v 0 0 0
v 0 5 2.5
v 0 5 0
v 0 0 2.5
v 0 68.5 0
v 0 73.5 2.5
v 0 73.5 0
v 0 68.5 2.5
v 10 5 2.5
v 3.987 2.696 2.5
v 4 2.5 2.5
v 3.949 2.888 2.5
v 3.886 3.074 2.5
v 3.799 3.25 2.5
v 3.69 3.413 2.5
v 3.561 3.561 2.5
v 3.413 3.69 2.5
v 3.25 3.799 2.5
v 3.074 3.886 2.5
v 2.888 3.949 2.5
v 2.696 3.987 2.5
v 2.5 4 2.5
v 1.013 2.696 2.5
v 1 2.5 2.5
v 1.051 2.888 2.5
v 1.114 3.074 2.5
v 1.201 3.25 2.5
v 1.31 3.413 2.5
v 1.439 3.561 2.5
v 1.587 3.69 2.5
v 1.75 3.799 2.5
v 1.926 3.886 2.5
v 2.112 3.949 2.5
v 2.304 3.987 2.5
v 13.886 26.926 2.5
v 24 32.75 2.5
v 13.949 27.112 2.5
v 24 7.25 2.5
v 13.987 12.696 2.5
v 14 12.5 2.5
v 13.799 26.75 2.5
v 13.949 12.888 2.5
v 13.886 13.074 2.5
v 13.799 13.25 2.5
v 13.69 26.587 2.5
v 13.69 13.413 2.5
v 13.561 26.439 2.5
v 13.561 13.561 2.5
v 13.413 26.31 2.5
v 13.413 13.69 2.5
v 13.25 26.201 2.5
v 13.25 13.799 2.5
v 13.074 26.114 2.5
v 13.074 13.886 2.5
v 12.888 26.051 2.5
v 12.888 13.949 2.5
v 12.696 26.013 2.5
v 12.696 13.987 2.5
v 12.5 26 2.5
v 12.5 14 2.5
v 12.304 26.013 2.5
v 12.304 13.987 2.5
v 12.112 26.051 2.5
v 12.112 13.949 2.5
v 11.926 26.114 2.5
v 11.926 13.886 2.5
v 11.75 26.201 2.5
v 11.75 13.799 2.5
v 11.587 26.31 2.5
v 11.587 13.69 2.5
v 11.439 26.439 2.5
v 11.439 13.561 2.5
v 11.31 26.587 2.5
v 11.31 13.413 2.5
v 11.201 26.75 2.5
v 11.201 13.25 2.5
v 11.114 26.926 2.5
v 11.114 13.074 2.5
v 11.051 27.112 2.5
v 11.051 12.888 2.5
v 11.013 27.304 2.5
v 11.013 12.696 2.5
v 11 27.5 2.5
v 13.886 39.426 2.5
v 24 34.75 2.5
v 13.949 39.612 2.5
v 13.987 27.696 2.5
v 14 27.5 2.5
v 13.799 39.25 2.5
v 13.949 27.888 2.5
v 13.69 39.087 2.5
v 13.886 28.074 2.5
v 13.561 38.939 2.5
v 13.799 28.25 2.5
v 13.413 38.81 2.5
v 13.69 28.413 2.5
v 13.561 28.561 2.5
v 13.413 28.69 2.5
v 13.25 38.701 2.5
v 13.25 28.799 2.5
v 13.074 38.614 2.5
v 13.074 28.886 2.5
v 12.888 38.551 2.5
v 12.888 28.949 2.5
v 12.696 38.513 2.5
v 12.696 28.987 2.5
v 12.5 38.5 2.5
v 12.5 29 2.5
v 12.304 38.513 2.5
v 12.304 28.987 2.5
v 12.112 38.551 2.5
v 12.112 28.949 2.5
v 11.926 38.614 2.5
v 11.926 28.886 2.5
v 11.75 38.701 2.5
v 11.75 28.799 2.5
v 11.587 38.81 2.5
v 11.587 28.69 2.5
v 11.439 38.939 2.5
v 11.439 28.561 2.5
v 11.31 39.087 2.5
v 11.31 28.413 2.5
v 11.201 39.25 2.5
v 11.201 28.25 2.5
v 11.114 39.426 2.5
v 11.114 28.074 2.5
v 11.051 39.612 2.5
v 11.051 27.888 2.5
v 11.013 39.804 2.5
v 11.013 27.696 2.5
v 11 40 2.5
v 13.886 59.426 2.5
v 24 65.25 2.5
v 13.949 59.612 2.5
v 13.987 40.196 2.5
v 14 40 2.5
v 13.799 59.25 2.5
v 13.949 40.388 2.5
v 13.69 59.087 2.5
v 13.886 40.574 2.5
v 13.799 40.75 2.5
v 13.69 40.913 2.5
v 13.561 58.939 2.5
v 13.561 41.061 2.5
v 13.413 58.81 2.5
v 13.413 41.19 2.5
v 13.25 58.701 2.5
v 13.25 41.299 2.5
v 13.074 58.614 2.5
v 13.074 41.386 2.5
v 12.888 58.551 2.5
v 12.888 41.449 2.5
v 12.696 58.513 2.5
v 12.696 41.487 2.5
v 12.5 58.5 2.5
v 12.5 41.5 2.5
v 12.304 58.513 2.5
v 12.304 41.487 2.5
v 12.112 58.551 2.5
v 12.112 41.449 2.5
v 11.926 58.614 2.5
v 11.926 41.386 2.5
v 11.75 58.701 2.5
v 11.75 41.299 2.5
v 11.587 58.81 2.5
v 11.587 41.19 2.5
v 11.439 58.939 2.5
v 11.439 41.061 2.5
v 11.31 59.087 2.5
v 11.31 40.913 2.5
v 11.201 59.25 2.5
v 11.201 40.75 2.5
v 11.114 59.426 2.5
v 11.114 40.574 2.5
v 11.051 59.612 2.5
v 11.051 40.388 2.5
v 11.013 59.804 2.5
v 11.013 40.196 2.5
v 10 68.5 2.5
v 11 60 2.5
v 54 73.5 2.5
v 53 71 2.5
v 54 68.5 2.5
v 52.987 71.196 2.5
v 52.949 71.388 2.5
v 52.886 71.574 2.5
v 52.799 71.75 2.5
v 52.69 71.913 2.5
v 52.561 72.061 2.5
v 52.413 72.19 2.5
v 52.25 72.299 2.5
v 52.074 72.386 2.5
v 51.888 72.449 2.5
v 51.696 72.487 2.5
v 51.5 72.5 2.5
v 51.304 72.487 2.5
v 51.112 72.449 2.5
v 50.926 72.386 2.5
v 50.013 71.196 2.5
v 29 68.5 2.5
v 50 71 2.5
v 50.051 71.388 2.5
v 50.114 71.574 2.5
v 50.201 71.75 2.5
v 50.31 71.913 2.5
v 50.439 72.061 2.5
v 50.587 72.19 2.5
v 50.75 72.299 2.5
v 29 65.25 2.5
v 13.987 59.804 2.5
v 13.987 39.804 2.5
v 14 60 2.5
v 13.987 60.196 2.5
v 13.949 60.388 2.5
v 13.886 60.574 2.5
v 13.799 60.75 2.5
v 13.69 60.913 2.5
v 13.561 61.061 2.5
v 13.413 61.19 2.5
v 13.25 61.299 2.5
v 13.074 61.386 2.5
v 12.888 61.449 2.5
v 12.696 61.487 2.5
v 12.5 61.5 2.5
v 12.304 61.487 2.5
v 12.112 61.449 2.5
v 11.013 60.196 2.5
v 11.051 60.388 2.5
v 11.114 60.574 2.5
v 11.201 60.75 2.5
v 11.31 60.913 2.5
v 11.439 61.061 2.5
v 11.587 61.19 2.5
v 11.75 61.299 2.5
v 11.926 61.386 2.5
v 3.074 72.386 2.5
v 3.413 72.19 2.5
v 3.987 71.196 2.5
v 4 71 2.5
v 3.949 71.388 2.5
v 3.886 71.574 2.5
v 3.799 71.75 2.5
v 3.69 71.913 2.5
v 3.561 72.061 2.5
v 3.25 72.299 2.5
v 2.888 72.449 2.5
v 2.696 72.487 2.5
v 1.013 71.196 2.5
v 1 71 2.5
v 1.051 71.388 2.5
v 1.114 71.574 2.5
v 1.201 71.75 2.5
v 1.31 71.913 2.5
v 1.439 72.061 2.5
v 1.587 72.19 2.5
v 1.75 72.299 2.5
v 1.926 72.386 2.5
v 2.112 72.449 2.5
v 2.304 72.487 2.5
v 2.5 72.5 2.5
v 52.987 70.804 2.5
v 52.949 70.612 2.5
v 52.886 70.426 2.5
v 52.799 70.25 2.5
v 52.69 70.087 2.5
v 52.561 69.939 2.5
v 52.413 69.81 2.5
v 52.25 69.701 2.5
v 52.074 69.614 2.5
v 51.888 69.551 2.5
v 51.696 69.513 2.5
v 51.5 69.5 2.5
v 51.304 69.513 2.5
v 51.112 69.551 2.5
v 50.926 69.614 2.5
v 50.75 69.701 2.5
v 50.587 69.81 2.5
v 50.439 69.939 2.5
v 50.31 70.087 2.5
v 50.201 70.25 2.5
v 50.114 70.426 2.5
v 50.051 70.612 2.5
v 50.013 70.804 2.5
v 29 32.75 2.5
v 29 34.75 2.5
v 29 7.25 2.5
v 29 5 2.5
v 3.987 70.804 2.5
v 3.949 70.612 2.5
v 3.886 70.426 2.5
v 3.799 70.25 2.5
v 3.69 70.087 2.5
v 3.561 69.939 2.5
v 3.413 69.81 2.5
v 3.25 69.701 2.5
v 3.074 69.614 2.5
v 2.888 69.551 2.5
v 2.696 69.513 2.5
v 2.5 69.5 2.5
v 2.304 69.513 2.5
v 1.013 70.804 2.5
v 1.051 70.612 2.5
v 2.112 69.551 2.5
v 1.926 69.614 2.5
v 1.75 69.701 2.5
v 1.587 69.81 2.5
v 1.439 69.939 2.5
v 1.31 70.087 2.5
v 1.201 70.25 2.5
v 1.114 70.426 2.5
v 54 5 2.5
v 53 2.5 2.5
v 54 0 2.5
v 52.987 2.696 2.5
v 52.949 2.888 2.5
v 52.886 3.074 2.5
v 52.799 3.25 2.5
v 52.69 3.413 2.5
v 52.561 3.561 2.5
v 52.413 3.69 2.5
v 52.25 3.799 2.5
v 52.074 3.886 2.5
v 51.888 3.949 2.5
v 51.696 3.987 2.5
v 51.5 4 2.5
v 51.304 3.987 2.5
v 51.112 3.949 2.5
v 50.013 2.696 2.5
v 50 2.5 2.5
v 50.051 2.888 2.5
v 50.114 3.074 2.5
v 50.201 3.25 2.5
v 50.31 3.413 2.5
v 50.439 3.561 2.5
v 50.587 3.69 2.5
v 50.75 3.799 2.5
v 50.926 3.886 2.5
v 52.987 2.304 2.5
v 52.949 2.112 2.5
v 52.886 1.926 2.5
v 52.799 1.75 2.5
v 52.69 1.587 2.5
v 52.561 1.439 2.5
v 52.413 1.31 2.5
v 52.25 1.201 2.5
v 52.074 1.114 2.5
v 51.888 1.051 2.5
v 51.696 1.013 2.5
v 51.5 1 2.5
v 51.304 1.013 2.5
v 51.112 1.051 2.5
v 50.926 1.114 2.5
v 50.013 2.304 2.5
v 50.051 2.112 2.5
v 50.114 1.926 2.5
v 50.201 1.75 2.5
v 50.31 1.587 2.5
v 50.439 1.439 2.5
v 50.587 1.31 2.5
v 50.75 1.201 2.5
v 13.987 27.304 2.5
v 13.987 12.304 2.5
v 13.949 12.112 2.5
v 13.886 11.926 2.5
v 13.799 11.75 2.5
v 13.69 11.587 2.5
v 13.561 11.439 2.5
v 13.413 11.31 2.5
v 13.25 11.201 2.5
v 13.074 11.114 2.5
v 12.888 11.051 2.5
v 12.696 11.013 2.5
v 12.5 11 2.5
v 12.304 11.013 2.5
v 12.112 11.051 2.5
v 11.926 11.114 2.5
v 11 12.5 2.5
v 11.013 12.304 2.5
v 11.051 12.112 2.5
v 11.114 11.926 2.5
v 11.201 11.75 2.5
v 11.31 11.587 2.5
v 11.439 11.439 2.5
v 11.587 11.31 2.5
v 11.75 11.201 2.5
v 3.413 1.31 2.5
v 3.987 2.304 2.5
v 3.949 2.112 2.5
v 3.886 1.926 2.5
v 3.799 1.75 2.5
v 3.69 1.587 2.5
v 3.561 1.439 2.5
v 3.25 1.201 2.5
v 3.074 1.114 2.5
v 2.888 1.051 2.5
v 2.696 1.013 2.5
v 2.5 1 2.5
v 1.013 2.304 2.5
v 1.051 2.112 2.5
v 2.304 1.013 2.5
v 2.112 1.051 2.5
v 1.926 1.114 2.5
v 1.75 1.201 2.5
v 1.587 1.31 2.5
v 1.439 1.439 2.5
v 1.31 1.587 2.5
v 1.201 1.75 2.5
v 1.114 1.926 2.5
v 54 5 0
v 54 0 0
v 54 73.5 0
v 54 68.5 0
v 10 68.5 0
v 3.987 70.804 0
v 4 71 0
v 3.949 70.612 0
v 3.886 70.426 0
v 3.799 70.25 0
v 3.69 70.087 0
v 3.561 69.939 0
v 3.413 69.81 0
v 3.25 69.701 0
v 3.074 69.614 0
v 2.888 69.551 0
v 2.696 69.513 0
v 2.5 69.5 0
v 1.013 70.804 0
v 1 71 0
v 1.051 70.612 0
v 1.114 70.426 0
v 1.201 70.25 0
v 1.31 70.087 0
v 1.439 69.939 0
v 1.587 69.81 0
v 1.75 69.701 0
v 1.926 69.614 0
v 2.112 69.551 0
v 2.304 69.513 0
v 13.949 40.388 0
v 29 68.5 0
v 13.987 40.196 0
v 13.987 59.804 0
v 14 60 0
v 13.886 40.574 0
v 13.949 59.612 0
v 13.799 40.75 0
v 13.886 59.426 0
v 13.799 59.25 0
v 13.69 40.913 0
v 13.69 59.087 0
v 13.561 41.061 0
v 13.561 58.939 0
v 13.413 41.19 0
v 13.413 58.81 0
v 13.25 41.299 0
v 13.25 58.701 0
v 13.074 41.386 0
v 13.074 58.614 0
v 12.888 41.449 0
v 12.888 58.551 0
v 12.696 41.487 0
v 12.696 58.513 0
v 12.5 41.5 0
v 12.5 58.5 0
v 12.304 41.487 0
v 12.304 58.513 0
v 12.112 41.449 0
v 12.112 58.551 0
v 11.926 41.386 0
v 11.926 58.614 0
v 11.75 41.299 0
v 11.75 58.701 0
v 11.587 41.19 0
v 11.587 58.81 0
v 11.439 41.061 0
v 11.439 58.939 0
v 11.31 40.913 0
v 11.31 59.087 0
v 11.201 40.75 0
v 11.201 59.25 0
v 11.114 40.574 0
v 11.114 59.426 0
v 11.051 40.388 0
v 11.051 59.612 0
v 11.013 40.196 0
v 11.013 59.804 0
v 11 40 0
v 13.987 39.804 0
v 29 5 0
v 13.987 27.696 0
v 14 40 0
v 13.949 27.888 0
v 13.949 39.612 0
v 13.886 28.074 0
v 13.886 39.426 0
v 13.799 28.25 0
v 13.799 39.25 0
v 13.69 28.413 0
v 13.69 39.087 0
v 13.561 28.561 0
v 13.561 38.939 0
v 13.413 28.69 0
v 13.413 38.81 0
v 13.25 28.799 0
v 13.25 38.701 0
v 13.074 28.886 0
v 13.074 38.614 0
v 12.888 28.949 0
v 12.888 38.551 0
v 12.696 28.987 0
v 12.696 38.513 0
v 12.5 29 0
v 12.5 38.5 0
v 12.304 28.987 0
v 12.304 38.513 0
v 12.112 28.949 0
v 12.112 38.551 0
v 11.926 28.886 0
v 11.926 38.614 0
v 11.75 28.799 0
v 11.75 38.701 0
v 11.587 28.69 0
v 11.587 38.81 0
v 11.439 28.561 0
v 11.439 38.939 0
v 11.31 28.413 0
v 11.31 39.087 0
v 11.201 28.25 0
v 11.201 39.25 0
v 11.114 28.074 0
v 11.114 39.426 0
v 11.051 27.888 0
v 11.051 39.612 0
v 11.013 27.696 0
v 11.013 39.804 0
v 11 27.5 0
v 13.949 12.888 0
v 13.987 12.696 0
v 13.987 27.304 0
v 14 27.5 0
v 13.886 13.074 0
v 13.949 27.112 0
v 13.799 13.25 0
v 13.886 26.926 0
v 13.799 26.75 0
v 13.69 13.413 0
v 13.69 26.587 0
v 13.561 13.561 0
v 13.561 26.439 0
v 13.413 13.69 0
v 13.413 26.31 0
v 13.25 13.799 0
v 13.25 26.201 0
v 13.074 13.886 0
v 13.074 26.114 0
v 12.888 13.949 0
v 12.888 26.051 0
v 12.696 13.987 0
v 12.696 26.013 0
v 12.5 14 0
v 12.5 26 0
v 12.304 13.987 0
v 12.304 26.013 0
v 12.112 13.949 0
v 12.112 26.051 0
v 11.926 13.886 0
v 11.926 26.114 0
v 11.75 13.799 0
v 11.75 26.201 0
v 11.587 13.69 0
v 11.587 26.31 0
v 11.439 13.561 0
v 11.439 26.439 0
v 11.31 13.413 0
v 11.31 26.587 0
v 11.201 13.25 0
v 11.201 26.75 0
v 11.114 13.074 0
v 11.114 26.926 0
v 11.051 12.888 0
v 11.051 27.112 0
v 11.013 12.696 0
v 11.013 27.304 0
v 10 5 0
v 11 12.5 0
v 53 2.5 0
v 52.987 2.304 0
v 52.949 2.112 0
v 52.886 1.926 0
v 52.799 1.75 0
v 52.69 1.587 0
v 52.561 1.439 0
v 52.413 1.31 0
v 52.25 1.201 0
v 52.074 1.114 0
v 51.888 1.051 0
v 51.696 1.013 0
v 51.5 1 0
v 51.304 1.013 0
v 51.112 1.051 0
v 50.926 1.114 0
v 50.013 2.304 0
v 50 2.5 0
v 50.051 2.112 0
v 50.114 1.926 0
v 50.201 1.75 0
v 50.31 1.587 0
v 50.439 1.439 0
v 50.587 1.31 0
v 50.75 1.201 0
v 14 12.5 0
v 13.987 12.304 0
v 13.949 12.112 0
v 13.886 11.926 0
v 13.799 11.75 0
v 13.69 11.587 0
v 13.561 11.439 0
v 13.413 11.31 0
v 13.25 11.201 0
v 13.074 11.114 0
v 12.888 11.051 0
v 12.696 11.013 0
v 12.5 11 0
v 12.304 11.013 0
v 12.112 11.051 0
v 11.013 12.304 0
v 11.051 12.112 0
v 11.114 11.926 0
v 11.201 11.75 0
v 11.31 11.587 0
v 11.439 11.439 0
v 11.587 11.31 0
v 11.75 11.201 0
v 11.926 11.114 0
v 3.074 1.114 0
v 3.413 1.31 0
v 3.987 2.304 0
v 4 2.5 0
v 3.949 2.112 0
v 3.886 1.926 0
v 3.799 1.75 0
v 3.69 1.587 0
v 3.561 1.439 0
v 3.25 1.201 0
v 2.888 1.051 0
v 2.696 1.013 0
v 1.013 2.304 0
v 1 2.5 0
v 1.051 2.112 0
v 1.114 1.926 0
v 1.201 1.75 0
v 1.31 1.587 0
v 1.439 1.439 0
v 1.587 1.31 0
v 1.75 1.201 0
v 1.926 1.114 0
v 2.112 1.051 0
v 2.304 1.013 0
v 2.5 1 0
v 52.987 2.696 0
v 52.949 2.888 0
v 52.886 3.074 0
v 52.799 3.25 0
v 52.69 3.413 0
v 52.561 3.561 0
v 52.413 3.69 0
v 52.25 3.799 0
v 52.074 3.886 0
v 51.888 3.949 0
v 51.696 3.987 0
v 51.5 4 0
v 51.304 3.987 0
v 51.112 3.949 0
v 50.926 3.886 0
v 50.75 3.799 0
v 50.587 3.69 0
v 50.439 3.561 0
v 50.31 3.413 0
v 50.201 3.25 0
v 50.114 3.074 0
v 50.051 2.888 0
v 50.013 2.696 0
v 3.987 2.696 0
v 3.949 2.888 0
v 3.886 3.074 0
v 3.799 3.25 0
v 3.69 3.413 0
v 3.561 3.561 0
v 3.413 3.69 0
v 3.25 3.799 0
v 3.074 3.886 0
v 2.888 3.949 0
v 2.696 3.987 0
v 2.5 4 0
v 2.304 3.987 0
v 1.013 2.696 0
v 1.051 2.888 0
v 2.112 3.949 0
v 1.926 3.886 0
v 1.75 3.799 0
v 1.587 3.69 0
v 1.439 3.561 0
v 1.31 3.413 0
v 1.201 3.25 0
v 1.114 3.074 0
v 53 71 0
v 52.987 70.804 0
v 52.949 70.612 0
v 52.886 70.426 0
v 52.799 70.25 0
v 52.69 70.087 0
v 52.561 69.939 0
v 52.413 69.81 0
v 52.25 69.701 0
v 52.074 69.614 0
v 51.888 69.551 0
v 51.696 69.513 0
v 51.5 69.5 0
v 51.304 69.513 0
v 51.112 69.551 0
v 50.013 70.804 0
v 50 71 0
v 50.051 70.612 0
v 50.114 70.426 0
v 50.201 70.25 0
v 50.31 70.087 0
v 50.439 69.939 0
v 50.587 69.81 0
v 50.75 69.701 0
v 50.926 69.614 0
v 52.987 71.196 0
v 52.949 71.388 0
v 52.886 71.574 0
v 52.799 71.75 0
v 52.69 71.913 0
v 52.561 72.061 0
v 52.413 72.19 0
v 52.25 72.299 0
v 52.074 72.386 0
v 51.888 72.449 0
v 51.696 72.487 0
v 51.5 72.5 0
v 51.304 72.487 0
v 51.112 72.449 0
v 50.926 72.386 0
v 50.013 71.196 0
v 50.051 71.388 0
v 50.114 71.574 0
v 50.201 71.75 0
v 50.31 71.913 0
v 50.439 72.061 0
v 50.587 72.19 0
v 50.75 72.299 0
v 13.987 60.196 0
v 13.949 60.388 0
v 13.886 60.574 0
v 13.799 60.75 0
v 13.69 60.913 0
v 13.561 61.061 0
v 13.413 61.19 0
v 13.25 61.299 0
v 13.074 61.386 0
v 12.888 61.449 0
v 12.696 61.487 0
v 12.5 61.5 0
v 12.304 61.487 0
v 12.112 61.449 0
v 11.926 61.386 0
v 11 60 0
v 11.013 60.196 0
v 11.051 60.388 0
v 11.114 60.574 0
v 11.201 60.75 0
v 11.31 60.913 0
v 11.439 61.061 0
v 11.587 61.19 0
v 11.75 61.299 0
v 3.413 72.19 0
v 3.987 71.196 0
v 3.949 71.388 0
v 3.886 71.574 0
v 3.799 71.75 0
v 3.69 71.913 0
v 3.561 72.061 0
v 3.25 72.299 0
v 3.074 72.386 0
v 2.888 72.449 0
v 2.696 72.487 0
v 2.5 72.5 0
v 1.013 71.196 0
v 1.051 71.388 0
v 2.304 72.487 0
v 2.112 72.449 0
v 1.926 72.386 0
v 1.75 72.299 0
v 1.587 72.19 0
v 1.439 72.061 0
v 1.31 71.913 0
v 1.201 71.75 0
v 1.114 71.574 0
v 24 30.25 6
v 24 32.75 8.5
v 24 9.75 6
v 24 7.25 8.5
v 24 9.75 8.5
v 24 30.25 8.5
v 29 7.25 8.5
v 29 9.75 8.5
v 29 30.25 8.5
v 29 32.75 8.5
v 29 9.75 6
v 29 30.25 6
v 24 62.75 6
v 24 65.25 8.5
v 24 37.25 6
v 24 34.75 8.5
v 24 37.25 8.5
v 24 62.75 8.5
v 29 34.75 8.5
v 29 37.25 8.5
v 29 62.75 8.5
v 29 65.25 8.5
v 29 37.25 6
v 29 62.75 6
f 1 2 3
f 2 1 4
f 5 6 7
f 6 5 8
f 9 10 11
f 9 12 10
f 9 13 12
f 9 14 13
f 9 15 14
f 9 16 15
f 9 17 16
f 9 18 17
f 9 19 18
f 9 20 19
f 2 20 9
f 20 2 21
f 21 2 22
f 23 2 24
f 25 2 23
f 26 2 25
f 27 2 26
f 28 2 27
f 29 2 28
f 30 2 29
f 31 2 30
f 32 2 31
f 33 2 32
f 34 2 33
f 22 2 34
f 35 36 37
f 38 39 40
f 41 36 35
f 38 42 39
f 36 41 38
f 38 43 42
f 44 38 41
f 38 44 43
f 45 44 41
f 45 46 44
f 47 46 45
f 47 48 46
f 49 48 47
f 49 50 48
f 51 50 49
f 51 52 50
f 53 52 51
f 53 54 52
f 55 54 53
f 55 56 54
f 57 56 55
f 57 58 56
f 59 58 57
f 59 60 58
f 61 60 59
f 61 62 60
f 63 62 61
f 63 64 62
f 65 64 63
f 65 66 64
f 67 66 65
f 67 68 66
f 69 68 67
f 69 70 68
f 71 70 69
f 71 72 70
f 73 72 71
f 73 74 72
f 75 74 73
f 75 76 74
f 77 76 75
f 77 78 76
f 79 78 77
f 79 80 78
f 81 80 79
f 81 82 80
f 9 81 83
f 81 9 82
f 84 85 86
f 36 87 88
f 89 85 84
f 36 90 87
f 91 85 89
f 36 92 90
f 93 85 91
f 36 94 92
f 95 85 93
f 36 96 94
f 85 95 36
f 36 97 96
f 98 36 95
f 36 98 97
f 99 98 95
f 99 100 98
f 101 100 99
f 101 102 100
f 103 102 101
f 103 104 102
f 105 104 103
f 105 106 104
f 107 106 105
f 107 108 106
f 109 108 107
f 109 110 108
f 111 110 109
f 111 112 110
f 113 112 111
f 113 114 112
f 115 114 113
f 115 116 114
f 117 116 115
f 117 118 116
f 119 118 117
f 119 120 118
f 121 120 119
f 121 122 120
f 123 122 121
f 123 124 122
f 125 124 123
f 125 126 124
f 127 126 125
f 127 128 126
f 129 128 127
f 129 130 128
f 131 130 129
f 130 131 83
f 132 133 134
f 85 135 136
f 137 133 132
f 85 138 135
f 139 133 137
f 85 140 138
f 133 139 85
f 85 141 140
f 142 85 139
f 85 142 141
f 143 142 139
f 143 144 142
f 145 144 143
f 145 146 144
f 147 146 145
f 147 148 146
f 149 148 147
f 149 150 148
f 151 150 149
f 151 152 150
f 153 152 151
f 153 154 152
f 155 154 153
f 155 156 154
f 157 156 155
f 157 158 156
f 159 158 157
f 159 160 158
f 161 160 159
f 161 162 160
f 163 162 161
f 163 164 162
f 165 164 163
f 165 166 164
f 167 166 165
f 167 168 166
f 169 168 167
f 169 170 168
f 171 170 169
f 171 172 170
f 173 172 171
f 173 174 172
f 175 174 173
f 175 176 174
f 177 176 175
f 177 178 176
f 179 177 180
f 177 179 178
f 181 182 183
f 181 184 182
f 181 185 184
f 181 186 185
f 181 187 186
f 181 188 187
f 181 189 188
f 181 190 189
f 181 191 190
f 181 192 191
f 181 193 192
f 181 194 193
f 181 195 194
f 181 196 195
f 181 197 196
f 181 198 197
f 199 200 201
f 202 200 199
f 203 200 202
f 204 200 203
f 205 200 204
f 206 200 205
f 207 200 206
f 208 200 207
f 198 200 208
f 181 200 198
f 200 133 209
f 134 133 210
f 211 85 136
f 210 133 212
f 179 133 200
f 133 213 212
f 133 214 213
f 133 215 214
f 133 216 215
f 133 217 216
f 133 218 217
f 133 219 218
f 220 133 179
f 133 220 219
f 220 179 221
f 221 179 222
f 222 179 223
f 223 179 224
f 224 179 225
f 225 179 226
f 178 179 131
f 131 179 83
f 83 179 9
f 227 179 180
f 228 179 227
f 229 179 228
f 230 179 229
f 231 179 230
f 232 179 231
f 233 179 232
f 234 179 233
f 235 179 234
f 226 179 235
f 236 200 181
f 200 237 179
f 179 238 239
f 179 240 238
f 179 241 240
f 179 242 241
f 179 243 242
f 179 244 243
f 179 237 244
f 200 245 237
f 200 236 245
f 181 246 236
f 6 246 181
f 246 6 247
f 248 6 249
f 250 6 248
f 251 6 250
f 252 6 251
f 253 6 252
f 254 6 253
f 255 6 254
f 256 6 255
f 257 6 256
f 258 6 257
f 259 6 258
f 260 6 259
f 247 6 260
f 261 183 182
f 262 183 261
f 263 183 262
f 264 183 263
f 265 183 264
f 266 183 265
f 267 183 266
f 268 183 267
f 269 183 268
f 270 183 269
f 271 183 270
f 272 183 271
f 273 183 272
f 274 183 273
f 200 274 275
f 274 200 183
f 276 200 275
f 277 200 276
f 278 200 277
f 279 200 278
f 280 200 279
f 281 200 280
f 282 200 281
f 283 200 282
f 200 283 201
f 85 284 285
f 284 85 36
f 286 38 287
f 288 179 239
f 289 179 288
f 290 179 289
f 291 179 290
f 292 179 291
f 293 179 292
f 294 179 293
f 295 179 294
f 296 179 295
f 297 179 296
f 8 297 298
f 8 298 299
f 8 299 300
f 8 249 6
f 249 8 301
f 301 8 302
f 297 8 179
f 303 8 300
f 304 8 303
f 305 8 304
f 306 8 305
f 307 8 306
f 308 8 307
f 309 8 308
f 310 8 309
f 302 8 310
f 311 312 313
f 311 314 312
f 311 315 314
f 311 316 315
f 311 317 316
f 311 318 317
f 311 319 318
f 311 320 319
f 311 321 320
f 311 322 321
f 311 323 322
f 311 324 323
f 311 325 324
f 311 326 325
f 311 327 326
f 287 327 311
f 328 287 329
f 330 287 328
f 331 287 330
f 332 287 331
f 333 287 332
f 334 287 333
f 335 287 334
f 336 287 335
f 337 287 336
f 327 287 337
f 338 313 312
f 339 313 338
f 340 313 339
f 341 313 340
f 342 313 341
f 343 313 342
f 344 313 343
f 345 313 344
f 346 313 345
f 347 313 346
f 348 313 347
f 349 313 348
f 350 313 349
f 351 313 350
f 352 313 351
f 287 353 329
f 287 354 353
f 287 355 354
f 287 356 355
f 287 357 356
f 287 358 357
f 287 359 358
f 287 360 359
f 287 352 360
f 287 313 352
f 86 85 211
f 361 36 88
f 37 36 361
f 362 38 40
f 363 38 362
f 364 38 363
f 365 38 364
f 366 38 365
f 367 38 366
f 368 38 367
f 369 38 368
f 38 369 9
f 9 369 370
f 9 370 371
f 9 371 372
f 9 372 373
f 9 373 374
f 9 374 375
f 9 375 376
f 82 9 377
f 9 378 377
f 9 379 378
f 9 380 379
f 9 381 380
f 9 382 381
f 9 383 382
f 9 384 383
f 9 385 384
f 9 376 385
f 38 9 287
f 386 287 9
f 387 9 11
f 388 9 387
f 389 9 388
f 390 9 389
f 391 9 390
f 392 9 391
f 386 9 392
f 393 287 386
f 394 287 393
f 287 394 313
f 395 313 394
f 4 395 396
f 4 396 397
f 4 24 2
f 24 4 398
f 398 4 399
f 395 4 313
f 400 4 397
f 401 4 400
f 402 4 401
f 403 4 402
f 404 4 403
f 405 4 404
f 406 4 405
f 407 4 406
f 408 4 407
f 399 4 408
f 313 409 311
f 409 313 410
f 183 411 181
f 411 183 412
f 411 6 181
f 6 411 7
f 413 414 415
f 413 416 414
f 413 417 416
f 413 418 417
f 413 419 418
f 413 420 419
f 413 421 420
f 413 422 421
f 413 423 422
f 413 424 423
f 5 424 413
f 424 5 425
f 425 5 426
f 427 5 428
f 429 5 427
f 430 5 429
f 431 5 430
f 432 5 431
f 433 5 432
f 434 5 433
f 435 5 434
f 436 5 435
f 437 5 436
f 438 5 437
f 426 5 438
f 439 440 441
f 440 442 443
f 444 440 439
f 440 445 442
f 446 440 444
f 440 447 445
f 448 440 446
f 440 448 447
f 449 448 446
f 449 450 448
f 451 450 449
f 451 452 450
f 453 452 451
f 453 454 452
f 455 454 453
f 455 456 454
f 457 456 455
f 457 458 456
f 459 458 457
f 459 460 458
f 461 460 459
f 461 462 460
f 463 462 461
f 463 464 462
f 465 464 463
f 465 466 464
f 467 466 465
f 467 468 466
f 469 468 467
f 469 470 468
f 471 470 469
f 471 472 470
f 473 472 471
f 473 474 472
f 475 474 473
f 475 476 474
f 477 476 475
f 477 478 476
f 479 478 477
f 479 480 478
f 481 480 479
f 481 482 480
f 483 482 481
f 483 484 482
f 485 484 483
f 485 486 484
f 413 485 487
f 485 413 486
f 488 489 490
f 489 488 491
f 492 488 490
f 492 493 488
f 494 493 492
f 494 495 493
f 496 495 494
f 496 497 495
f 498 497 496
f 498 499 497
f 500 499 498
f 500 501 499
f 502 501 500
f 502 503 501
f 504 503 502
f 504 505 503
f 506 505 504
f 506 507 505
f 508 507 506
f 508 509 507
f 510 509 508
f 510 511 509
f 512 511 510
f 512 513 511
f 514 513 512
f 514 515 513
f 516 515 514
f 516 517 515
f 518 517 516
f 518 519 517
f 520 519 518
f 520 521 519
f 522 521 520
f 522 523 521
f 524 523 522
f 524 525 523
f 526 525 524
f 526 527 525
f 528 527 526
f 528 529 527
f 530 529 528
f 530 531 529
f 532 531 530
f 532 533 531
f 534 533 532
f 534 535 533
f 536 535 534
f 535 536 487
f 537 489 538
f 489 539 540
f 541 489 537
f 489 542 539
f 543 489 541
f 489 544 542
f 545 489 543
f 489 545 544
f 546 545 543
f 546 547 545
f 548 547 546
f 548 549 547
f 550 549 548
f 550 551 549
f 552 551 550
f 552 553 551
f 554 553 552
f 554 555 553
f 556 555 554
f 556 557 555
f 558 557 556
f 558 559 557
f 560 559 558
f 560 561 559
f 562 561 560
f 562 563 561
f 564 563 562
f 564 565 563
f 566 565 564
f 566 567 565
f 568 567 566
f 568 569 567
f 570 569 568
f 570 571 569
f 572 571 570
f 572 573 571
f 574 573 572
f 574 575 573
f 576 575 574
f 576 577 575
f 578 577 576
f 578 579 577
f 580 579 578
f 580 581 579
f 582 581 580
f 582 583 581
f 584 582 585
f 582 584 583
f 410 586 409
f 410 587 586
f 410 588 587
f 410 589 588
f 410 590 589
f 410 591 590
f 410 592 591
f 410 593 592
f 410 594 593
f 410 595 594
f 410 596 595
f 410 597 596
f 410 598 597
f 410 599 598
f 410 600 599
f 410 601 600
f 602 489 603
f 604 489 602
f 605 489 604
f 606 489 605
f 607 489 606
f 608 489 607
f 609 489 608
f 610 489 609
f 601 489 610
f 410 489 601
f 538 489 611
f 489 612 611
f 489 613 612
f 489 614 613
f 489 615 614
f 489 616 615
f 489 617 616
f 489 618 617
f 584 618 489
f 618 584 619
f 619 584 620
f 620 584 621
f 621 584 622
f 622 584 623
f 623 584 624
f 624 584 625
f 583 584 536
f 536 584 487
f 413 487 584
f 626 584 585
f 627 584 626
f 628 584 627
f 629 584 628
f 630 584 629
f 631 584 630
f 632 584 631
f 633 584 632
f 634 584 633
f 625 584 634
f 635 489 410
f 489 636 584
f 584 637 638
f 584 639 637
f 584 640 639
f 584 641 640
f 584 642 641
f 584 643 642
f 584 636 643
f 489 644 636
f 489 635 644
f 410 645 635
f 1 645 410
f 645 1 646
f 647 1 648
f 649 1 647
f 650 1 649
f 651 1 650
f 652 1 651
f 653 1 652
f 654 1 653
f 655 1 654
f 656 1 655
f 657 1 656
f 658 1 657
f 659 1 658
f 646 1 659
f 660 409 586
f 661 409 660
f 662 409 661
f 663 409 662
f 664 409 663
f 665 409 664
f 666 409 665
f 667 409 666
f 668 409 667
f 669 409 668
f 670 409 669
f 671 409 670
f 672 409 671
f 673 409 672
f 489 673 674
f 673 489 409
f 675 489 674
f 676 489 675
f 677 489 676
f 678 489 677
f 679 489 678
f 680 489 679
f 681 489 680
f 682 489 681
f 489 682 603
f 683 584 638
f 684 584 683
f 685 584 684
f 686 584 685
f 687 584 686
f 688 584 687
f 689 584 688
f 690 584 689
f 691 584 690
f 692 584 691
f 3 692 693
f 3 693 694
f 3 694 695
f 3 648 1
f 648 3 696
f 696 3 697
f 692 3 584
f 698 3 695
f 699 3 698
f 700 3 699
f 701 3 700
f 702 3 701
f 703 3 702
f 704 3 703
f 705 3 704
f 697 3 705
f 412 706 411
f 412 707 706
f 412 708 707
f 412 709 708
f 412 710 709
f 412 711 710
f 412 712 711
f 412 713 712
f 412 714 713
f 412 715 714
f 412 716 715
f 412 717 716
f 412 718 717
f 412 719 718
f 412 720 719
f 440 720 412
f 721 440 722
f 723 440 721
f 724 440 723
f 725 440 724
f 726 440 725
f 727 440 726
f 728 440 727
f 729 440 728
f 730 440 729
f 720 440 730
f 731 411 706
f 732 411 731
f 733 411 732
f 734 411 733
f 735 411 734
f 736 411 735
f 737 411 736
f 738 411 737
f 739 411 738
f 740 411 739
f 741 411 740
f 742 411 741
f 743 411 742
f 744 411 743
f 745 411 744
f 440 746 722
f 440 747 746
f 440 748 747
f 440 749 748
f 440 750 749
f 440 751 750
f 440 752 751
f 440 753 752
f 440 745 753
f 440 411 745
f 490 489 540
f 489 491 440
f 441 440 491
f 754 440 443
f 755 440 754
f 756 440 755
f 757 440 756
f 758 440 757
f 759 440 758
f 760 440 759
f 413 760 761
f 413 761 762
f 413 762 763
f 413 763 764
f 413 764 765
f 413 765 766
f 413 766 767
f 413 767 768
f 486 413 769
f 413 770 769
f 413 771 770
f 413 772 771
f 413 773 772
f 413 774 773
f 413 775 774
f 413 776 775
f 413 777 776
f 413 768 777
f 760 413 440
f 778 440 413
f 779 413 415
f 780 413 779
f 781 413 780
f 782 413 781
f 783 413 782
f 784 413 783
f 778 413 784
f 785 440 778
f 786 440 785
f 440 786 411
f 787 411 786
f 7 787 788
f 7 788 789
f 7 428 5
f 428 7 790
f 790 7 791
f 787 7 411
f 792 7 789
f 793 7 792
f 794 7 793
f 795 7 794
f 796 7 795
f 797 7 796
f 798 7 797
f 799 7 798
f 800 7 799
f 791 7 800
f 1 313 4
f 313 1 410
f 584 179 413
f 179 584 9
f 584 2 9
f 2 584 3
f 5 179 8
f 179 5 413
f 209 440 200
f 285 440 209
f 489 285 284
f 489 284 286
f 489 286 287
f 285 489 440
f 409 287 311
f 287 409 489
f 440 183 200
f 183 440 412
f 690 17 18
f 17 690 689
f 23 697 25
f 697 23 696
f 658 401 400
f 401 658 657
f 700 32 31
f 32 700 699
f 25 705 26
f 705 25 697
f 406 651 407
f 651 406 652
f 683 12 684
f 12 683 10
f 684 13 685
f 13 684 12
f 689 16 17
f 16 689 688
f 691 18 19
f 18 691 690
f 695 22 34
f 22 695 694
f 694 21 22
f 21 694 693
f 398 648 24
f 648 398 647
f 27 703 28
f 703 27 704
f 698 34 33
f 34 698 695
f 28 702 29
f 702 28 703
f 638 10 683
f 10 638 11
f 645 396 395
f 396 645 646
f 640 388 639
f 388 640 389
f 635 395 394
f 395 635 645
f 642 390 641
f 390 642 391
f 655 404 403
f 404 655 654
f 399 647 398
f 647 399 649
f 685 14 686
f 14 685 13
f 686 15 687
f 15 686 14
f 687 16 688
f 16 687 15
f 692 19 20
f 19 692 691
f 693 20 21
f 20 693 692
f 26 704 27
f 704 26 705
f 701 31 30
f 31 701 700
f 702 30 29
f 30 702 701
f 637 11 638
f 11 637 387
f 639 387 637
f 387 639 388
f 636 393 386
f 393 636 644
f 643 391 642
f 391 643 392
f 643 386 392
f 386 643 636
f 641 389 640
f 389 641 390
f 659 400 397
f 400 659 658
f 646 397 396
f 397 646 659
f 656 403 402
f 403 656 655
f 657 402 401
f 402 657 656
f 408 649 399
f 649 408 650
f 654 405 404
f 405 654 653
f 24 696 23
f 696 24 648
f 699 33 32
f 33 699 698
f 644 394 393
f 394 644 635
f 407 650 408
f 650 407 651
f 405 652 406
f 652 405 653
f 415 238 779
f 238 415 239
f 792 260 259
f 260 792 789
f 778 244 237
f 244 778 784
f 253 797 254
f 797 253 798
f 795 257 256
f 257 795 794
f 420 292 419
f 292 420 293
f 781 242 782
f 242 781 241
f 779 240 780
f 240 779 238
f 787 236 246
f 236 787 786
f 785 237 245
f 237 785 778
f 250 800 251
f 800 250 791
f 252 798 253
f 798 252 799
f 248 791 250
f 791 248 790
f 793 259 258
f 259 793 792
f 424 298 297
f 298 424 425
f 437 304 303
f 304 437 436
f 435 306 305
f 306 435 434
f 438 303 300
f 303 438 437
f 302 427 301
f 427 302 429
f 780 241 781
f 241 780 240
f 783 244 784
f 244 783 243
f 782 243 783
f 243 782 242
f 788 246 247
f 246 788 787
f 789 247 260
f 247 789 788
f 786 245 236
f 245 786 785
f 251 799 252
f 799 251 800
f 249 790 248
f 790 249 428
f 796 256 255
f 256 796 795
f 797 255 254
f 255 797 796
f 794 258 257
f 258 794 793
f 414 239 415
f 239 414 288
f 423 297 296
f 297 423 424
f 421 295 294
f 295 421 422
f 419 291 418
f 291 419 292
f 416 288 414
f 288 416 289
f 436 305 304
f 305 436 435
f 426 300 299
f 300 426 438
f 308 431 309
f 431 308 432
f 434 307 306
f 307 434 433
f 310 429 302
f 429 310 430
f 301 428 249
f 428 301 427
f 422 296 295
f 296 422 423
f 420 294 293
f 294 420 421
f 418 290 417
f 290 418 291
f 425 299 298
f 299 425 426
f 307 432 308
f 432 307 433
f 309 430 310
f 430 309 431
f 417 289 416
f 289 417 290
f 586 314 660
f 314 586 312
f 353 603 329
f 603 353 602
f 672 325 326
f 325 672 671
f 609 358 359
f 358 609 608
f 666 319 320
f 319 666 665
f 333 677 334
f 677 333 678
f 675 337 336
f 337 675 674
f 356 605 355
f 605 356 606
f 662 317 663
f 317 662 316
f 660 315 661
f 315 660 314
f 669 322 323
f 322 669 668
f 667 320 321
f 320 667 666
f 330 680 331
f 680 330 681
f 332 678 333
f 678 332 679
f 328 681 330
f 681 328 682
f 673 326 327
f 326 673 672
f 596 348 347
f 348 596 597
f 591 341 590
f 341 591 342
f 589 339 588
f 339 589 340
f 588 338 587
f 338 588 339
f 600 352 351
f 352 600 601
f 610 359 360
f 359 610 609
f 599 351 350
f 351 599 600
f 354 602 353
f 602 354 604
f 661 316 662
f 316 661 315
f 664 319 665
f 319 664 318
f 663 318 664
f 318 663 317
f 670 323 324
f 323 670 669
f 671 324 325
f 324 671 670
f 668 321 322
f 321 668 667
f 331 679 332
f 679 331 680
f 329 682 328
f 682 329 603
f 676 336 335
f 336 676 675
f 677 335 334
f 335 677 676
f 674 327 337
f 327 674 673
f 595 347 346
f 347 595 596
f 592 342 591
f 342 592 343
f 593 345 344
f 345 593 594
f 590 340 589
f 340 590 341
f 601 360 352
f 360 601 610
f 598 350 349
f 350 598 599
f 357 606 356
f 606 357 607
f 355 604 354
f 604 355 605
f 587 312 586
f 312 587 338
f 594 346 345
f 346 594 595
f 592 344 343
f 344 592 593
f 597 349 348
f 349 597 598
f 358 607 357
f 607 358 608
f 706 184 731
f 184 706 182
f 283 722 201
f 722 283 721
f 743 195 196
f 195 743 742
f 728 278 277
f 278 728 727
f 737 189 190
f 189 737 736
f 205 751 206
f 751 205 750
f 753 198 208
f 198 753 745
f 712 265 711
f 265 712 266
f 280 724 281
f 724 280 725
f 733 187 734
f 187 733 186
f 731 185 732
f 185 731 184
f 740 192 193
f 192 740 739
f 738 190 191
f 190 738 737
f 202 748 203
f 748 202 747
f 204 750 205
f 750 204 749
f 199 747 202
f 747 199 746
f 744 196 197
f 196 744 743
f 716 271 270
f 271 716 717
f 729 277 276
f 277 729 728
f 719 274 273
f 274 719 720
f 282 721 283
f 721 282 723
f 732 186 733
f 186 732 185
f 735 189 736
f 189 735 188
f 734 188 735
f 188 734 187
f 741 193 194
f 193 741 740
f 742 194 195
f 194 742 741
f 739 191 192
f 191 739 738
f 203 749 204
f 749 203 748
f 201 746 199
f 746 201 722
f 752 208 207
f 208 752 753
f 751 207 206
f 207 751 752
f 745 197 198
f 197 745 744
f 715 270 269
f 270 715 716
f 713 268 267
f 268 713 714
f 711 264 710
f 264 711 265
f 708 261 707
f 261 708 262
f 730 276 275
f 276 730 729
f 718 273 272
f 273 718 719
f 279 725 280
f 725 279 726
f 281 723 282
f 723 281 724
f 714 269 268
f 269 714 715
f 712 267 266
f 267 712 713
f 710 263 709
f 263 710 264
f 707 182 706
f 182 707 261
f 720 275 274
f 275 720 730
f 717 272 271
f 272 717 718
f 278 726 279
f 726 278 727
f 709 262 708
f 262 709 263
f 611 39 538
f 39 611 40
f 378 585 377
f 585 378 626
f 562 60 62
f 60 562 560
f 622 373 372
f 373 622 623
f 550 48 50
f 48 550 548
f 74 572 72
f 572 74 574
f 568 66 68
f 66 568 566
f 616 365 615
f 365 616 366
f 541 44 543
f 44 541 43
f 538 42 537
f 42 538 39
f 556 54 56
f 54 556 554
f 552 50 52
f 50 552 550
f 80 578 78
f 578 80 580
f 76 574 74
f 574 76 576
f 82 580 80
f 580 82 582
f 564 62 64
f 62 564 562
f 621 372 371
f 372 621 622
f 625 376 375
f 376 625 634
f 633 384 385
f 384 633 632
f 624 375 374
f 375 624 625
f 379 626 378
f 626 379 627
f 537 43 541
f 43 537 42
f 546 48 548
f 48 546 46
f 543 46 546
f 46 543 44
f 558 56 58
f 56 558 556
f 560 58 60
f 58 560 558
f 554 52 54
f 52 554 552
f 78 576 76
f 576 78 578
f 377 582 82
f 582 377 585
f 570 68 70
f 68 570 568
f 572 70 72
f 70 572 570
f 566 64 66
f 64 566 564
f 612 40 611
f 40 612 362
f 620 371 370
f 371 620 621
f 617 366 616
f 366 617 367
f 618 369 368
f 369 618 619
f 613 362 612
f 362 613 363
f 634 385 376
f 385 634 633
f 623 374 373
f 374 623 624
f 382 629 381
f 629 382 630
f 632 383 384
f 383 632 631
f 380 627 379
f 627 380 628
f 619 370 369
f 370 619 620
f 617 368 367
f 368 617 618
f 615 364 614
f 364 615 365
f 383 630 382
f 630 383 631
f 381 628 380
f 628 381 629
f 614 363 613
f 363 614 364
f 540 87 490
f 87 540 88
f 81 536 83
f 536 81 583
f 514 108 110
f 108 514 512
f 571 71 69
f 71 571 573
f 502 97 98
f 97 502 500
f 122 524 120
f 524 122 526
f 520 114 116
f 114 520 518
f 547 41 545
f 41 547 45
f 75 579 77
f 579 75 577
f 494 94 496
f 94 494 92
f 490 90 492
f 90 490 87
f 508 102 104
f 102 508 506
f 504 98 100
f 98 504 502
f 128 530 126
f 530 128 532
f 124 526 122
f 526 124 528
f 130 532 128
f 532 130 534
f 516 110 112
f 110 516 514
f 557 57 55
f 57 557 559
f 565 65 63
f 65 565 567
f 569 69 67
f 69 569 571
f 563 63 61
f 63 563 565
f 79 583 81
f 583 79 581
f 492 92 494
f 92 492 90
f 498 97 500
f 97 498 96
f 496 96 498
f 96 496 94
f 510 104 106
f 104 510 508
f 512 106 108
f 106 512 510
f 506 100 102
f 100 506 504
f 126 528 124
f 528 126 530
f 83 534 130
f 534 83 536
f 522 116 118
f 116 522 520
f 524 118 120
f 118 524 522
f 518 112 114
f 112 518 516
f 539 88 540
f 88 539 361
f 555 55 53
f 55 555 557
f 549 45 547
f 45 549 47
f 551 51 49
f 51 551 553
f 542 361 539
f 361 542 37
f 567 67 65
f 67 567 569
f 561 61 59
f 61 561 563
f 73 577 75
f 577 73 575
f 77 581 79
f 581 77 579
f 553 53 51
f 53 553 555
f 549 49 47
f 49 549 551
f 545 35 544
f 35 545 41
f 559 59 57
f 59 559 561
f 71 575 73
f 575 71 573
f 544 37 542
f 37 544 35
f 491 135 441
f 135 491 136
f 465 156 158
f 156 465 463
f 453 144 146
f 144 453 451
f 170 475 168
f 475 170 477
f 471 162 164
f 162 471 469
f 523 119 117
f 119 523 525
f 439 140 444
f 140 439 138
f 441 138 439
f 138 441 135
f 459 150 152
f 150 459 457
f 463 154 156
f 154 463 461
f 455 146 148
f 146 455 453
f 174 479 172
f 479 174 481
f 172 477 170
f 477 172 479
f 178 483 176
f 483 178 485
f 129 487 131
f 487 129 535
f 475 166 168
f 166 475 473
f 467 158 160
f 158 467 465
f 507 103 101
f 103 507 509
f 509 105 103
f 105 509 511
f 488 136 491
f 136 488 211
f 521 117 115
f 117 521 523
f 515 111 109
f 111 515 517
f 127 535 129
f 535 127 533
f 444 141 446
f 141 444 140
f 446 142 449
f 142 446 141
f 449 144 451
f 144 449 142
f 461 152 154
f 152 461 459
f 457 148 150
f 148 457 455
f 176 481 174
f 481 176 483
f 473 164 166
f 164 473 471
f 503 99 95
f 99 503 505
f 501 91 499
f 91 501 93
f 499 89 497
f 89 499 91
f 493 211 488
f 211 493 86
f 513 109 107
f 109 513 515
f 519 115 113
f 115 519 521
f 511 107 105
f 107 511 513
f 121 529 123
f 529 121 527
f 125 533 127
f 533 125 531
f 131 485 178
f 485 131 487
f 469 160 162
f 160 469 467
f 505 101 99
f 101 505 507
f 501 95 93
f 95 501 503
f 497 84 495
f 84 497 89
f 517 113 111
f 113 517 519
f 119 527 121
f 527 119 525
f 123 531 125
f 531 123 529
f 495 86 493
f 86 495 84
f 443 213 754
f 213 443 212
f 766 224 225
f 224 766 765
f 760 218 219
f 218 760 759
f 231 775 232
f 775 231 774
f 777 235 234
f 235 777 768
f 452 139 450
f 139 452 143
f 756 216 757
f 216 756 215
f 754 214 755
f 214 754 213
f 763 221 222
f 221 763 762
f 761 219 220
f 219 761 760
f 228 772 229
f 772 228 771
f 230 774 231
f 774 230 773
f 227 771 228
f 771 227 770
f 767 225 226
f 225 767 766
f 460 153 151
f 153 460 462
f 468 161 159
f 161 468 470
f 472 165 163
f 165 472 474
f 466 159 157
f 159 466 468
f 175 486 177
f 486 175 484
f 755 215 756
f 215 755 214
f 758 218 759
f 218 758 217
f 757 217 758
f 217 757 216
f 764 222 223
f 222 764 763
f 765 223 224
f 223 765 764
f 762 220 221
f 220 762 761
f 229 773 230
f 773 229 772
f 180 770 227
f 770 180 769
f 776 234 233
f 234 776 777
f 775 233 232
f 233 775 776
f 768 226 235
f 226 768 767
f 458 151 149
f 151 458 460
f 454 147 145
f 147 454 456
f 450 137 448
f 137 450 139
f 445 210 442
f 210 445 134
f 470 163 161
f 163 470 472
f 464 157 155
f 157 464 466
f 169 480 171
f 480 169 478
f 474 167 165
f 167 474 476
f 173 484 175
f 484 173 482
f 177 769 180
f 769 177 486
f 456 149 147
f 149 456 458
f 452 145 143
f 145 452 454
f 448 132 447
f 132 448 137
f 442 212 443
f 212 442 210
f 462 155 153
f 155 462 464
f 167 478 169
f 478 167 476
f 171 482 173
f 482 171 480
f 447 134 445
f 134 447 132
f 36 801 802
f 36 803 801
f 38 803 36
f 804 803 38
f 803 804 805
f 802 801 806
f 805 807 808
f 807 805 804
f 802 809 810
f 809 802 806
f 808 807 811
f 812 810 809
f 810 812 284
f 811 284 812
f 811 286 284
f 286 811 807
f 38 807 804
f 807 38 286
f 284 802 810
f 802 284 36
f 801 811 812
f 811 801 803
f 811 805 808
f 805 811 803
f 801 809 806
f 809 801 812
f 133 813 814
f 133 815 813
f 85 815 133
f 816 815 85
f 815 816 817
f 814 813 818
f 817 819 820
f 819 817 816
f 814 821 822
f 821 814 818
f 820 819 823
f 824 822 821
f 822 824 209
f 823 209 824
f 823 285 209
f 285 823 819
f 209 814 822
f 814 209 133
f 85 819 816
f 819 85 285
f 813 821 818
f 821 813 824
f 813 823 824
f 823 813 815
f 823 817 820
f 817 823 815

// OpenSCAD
$fn=48;

minWidth=5;
tcAmpY=15;
rtdAmpY=20;
totalX=49+minWidth;
totalY=68.5+minWidth;
totalZ=2.5;
m25=3;
m2=2.5;

postLeftAlign=minWidth/2;
postRightAlign=totalY-minWidth/2;
postFrontAlign=minWidth/2;
postBackAlign=totalX-minWidth/2;
mountFrontAlign=postFrontAlign+10;
tcHole1Align=minWidth*2.5;
tcHole2Align=tcHole1Align+tcAmpY;
rtdHole1Align=tcHole2Align+minWidth*2.5;
rtdHole2Align=rtdHole1Align+rtdAmpY;

module createCrossBraces (frontAlign, leftAlign, openingWidth, braceAngle) {
	translate([frontAlign, leftAlign, 0]) rotate(a=[0,0,-braceAngle]) cube([minWidth/2, 200, totalZ*2], center=true);
	translate([frontAlign, leftAlign+openingWidth, 0]) rotate(a=[0,0,braceAngle]) cube([minWidth/2, 200, totalZ*2], center=true);
}

union() {
	difference() {
		// Master frame
		cube([totalX, totalY, totalZ]);
		
		// Front cutout
		translate([-0.1, minWidth, -0.1]) cube([10.1, totalY-minWidth*2, 3]);
		
		// Rear cutout
		translate([29, minWidth, -0.1]) cube([40, (totalY-(2*minWidth)), 5]);
		
		// Holes for posts
		translate([postFrontAlign, postLeftAlign, -0.1]) cylinder(h=10, d=m25, center=true);
		translate([postFrontAlign, postRightAlign, -0.1]) cylinder(h=10, d=m25, center=true);
		translate([postBackAlign, postLeftAlign, -0.1]) cylinder(h=10, d=m25, center=true);
		translate([postBackAlign, postRightAlign, -0.1]) cylinder(h=10, d=m25, center=true);
		
		// Holes for TC amp board
		translate([mountFrontAlign, tcHole1Align, -0.1]) cylinder(h=10, d=m25, center=true);
		translate([mountFrontAlign, tcHole2Align, -0.1]) cylinder(h=10, d=m25, center=true);
		
		// Holes for RTD amp board
		translate([mountFrontAlign, rtdHole1Align, -0.1]) cylinder(h=10, d=m25, center=true);
		translate([mountFrontAlign, rtdHole2Align, -0.1]) cylinder(h=10, d=m25, center=true);
		}
		
		// TC shelf
		difference() {
			translate([24, tcHole1Align-2.75-minWidth/2, totalZ]) cube([5, tcAmpY+5.5+minWidth, minWidth*1.2]);	
			translate([23, tcHole1Align-2.75, totalZ*2+1]) cube([20, tcAmpY+5.5, minWidth*2]);
		}
		
		// RTD shelf
		difference() {
			translate([24, rtdHole1Align-2.75-minWidth/2, totalZ]) cube([5, rtdAmpY+5.5+minWidth, minWidth*1.2]);	
			translate([23, rtdHole1Align-2.75, totalZ*2+1]) cube([20, rtdAmpY+5.5, minWidth*2]);
		}
}
